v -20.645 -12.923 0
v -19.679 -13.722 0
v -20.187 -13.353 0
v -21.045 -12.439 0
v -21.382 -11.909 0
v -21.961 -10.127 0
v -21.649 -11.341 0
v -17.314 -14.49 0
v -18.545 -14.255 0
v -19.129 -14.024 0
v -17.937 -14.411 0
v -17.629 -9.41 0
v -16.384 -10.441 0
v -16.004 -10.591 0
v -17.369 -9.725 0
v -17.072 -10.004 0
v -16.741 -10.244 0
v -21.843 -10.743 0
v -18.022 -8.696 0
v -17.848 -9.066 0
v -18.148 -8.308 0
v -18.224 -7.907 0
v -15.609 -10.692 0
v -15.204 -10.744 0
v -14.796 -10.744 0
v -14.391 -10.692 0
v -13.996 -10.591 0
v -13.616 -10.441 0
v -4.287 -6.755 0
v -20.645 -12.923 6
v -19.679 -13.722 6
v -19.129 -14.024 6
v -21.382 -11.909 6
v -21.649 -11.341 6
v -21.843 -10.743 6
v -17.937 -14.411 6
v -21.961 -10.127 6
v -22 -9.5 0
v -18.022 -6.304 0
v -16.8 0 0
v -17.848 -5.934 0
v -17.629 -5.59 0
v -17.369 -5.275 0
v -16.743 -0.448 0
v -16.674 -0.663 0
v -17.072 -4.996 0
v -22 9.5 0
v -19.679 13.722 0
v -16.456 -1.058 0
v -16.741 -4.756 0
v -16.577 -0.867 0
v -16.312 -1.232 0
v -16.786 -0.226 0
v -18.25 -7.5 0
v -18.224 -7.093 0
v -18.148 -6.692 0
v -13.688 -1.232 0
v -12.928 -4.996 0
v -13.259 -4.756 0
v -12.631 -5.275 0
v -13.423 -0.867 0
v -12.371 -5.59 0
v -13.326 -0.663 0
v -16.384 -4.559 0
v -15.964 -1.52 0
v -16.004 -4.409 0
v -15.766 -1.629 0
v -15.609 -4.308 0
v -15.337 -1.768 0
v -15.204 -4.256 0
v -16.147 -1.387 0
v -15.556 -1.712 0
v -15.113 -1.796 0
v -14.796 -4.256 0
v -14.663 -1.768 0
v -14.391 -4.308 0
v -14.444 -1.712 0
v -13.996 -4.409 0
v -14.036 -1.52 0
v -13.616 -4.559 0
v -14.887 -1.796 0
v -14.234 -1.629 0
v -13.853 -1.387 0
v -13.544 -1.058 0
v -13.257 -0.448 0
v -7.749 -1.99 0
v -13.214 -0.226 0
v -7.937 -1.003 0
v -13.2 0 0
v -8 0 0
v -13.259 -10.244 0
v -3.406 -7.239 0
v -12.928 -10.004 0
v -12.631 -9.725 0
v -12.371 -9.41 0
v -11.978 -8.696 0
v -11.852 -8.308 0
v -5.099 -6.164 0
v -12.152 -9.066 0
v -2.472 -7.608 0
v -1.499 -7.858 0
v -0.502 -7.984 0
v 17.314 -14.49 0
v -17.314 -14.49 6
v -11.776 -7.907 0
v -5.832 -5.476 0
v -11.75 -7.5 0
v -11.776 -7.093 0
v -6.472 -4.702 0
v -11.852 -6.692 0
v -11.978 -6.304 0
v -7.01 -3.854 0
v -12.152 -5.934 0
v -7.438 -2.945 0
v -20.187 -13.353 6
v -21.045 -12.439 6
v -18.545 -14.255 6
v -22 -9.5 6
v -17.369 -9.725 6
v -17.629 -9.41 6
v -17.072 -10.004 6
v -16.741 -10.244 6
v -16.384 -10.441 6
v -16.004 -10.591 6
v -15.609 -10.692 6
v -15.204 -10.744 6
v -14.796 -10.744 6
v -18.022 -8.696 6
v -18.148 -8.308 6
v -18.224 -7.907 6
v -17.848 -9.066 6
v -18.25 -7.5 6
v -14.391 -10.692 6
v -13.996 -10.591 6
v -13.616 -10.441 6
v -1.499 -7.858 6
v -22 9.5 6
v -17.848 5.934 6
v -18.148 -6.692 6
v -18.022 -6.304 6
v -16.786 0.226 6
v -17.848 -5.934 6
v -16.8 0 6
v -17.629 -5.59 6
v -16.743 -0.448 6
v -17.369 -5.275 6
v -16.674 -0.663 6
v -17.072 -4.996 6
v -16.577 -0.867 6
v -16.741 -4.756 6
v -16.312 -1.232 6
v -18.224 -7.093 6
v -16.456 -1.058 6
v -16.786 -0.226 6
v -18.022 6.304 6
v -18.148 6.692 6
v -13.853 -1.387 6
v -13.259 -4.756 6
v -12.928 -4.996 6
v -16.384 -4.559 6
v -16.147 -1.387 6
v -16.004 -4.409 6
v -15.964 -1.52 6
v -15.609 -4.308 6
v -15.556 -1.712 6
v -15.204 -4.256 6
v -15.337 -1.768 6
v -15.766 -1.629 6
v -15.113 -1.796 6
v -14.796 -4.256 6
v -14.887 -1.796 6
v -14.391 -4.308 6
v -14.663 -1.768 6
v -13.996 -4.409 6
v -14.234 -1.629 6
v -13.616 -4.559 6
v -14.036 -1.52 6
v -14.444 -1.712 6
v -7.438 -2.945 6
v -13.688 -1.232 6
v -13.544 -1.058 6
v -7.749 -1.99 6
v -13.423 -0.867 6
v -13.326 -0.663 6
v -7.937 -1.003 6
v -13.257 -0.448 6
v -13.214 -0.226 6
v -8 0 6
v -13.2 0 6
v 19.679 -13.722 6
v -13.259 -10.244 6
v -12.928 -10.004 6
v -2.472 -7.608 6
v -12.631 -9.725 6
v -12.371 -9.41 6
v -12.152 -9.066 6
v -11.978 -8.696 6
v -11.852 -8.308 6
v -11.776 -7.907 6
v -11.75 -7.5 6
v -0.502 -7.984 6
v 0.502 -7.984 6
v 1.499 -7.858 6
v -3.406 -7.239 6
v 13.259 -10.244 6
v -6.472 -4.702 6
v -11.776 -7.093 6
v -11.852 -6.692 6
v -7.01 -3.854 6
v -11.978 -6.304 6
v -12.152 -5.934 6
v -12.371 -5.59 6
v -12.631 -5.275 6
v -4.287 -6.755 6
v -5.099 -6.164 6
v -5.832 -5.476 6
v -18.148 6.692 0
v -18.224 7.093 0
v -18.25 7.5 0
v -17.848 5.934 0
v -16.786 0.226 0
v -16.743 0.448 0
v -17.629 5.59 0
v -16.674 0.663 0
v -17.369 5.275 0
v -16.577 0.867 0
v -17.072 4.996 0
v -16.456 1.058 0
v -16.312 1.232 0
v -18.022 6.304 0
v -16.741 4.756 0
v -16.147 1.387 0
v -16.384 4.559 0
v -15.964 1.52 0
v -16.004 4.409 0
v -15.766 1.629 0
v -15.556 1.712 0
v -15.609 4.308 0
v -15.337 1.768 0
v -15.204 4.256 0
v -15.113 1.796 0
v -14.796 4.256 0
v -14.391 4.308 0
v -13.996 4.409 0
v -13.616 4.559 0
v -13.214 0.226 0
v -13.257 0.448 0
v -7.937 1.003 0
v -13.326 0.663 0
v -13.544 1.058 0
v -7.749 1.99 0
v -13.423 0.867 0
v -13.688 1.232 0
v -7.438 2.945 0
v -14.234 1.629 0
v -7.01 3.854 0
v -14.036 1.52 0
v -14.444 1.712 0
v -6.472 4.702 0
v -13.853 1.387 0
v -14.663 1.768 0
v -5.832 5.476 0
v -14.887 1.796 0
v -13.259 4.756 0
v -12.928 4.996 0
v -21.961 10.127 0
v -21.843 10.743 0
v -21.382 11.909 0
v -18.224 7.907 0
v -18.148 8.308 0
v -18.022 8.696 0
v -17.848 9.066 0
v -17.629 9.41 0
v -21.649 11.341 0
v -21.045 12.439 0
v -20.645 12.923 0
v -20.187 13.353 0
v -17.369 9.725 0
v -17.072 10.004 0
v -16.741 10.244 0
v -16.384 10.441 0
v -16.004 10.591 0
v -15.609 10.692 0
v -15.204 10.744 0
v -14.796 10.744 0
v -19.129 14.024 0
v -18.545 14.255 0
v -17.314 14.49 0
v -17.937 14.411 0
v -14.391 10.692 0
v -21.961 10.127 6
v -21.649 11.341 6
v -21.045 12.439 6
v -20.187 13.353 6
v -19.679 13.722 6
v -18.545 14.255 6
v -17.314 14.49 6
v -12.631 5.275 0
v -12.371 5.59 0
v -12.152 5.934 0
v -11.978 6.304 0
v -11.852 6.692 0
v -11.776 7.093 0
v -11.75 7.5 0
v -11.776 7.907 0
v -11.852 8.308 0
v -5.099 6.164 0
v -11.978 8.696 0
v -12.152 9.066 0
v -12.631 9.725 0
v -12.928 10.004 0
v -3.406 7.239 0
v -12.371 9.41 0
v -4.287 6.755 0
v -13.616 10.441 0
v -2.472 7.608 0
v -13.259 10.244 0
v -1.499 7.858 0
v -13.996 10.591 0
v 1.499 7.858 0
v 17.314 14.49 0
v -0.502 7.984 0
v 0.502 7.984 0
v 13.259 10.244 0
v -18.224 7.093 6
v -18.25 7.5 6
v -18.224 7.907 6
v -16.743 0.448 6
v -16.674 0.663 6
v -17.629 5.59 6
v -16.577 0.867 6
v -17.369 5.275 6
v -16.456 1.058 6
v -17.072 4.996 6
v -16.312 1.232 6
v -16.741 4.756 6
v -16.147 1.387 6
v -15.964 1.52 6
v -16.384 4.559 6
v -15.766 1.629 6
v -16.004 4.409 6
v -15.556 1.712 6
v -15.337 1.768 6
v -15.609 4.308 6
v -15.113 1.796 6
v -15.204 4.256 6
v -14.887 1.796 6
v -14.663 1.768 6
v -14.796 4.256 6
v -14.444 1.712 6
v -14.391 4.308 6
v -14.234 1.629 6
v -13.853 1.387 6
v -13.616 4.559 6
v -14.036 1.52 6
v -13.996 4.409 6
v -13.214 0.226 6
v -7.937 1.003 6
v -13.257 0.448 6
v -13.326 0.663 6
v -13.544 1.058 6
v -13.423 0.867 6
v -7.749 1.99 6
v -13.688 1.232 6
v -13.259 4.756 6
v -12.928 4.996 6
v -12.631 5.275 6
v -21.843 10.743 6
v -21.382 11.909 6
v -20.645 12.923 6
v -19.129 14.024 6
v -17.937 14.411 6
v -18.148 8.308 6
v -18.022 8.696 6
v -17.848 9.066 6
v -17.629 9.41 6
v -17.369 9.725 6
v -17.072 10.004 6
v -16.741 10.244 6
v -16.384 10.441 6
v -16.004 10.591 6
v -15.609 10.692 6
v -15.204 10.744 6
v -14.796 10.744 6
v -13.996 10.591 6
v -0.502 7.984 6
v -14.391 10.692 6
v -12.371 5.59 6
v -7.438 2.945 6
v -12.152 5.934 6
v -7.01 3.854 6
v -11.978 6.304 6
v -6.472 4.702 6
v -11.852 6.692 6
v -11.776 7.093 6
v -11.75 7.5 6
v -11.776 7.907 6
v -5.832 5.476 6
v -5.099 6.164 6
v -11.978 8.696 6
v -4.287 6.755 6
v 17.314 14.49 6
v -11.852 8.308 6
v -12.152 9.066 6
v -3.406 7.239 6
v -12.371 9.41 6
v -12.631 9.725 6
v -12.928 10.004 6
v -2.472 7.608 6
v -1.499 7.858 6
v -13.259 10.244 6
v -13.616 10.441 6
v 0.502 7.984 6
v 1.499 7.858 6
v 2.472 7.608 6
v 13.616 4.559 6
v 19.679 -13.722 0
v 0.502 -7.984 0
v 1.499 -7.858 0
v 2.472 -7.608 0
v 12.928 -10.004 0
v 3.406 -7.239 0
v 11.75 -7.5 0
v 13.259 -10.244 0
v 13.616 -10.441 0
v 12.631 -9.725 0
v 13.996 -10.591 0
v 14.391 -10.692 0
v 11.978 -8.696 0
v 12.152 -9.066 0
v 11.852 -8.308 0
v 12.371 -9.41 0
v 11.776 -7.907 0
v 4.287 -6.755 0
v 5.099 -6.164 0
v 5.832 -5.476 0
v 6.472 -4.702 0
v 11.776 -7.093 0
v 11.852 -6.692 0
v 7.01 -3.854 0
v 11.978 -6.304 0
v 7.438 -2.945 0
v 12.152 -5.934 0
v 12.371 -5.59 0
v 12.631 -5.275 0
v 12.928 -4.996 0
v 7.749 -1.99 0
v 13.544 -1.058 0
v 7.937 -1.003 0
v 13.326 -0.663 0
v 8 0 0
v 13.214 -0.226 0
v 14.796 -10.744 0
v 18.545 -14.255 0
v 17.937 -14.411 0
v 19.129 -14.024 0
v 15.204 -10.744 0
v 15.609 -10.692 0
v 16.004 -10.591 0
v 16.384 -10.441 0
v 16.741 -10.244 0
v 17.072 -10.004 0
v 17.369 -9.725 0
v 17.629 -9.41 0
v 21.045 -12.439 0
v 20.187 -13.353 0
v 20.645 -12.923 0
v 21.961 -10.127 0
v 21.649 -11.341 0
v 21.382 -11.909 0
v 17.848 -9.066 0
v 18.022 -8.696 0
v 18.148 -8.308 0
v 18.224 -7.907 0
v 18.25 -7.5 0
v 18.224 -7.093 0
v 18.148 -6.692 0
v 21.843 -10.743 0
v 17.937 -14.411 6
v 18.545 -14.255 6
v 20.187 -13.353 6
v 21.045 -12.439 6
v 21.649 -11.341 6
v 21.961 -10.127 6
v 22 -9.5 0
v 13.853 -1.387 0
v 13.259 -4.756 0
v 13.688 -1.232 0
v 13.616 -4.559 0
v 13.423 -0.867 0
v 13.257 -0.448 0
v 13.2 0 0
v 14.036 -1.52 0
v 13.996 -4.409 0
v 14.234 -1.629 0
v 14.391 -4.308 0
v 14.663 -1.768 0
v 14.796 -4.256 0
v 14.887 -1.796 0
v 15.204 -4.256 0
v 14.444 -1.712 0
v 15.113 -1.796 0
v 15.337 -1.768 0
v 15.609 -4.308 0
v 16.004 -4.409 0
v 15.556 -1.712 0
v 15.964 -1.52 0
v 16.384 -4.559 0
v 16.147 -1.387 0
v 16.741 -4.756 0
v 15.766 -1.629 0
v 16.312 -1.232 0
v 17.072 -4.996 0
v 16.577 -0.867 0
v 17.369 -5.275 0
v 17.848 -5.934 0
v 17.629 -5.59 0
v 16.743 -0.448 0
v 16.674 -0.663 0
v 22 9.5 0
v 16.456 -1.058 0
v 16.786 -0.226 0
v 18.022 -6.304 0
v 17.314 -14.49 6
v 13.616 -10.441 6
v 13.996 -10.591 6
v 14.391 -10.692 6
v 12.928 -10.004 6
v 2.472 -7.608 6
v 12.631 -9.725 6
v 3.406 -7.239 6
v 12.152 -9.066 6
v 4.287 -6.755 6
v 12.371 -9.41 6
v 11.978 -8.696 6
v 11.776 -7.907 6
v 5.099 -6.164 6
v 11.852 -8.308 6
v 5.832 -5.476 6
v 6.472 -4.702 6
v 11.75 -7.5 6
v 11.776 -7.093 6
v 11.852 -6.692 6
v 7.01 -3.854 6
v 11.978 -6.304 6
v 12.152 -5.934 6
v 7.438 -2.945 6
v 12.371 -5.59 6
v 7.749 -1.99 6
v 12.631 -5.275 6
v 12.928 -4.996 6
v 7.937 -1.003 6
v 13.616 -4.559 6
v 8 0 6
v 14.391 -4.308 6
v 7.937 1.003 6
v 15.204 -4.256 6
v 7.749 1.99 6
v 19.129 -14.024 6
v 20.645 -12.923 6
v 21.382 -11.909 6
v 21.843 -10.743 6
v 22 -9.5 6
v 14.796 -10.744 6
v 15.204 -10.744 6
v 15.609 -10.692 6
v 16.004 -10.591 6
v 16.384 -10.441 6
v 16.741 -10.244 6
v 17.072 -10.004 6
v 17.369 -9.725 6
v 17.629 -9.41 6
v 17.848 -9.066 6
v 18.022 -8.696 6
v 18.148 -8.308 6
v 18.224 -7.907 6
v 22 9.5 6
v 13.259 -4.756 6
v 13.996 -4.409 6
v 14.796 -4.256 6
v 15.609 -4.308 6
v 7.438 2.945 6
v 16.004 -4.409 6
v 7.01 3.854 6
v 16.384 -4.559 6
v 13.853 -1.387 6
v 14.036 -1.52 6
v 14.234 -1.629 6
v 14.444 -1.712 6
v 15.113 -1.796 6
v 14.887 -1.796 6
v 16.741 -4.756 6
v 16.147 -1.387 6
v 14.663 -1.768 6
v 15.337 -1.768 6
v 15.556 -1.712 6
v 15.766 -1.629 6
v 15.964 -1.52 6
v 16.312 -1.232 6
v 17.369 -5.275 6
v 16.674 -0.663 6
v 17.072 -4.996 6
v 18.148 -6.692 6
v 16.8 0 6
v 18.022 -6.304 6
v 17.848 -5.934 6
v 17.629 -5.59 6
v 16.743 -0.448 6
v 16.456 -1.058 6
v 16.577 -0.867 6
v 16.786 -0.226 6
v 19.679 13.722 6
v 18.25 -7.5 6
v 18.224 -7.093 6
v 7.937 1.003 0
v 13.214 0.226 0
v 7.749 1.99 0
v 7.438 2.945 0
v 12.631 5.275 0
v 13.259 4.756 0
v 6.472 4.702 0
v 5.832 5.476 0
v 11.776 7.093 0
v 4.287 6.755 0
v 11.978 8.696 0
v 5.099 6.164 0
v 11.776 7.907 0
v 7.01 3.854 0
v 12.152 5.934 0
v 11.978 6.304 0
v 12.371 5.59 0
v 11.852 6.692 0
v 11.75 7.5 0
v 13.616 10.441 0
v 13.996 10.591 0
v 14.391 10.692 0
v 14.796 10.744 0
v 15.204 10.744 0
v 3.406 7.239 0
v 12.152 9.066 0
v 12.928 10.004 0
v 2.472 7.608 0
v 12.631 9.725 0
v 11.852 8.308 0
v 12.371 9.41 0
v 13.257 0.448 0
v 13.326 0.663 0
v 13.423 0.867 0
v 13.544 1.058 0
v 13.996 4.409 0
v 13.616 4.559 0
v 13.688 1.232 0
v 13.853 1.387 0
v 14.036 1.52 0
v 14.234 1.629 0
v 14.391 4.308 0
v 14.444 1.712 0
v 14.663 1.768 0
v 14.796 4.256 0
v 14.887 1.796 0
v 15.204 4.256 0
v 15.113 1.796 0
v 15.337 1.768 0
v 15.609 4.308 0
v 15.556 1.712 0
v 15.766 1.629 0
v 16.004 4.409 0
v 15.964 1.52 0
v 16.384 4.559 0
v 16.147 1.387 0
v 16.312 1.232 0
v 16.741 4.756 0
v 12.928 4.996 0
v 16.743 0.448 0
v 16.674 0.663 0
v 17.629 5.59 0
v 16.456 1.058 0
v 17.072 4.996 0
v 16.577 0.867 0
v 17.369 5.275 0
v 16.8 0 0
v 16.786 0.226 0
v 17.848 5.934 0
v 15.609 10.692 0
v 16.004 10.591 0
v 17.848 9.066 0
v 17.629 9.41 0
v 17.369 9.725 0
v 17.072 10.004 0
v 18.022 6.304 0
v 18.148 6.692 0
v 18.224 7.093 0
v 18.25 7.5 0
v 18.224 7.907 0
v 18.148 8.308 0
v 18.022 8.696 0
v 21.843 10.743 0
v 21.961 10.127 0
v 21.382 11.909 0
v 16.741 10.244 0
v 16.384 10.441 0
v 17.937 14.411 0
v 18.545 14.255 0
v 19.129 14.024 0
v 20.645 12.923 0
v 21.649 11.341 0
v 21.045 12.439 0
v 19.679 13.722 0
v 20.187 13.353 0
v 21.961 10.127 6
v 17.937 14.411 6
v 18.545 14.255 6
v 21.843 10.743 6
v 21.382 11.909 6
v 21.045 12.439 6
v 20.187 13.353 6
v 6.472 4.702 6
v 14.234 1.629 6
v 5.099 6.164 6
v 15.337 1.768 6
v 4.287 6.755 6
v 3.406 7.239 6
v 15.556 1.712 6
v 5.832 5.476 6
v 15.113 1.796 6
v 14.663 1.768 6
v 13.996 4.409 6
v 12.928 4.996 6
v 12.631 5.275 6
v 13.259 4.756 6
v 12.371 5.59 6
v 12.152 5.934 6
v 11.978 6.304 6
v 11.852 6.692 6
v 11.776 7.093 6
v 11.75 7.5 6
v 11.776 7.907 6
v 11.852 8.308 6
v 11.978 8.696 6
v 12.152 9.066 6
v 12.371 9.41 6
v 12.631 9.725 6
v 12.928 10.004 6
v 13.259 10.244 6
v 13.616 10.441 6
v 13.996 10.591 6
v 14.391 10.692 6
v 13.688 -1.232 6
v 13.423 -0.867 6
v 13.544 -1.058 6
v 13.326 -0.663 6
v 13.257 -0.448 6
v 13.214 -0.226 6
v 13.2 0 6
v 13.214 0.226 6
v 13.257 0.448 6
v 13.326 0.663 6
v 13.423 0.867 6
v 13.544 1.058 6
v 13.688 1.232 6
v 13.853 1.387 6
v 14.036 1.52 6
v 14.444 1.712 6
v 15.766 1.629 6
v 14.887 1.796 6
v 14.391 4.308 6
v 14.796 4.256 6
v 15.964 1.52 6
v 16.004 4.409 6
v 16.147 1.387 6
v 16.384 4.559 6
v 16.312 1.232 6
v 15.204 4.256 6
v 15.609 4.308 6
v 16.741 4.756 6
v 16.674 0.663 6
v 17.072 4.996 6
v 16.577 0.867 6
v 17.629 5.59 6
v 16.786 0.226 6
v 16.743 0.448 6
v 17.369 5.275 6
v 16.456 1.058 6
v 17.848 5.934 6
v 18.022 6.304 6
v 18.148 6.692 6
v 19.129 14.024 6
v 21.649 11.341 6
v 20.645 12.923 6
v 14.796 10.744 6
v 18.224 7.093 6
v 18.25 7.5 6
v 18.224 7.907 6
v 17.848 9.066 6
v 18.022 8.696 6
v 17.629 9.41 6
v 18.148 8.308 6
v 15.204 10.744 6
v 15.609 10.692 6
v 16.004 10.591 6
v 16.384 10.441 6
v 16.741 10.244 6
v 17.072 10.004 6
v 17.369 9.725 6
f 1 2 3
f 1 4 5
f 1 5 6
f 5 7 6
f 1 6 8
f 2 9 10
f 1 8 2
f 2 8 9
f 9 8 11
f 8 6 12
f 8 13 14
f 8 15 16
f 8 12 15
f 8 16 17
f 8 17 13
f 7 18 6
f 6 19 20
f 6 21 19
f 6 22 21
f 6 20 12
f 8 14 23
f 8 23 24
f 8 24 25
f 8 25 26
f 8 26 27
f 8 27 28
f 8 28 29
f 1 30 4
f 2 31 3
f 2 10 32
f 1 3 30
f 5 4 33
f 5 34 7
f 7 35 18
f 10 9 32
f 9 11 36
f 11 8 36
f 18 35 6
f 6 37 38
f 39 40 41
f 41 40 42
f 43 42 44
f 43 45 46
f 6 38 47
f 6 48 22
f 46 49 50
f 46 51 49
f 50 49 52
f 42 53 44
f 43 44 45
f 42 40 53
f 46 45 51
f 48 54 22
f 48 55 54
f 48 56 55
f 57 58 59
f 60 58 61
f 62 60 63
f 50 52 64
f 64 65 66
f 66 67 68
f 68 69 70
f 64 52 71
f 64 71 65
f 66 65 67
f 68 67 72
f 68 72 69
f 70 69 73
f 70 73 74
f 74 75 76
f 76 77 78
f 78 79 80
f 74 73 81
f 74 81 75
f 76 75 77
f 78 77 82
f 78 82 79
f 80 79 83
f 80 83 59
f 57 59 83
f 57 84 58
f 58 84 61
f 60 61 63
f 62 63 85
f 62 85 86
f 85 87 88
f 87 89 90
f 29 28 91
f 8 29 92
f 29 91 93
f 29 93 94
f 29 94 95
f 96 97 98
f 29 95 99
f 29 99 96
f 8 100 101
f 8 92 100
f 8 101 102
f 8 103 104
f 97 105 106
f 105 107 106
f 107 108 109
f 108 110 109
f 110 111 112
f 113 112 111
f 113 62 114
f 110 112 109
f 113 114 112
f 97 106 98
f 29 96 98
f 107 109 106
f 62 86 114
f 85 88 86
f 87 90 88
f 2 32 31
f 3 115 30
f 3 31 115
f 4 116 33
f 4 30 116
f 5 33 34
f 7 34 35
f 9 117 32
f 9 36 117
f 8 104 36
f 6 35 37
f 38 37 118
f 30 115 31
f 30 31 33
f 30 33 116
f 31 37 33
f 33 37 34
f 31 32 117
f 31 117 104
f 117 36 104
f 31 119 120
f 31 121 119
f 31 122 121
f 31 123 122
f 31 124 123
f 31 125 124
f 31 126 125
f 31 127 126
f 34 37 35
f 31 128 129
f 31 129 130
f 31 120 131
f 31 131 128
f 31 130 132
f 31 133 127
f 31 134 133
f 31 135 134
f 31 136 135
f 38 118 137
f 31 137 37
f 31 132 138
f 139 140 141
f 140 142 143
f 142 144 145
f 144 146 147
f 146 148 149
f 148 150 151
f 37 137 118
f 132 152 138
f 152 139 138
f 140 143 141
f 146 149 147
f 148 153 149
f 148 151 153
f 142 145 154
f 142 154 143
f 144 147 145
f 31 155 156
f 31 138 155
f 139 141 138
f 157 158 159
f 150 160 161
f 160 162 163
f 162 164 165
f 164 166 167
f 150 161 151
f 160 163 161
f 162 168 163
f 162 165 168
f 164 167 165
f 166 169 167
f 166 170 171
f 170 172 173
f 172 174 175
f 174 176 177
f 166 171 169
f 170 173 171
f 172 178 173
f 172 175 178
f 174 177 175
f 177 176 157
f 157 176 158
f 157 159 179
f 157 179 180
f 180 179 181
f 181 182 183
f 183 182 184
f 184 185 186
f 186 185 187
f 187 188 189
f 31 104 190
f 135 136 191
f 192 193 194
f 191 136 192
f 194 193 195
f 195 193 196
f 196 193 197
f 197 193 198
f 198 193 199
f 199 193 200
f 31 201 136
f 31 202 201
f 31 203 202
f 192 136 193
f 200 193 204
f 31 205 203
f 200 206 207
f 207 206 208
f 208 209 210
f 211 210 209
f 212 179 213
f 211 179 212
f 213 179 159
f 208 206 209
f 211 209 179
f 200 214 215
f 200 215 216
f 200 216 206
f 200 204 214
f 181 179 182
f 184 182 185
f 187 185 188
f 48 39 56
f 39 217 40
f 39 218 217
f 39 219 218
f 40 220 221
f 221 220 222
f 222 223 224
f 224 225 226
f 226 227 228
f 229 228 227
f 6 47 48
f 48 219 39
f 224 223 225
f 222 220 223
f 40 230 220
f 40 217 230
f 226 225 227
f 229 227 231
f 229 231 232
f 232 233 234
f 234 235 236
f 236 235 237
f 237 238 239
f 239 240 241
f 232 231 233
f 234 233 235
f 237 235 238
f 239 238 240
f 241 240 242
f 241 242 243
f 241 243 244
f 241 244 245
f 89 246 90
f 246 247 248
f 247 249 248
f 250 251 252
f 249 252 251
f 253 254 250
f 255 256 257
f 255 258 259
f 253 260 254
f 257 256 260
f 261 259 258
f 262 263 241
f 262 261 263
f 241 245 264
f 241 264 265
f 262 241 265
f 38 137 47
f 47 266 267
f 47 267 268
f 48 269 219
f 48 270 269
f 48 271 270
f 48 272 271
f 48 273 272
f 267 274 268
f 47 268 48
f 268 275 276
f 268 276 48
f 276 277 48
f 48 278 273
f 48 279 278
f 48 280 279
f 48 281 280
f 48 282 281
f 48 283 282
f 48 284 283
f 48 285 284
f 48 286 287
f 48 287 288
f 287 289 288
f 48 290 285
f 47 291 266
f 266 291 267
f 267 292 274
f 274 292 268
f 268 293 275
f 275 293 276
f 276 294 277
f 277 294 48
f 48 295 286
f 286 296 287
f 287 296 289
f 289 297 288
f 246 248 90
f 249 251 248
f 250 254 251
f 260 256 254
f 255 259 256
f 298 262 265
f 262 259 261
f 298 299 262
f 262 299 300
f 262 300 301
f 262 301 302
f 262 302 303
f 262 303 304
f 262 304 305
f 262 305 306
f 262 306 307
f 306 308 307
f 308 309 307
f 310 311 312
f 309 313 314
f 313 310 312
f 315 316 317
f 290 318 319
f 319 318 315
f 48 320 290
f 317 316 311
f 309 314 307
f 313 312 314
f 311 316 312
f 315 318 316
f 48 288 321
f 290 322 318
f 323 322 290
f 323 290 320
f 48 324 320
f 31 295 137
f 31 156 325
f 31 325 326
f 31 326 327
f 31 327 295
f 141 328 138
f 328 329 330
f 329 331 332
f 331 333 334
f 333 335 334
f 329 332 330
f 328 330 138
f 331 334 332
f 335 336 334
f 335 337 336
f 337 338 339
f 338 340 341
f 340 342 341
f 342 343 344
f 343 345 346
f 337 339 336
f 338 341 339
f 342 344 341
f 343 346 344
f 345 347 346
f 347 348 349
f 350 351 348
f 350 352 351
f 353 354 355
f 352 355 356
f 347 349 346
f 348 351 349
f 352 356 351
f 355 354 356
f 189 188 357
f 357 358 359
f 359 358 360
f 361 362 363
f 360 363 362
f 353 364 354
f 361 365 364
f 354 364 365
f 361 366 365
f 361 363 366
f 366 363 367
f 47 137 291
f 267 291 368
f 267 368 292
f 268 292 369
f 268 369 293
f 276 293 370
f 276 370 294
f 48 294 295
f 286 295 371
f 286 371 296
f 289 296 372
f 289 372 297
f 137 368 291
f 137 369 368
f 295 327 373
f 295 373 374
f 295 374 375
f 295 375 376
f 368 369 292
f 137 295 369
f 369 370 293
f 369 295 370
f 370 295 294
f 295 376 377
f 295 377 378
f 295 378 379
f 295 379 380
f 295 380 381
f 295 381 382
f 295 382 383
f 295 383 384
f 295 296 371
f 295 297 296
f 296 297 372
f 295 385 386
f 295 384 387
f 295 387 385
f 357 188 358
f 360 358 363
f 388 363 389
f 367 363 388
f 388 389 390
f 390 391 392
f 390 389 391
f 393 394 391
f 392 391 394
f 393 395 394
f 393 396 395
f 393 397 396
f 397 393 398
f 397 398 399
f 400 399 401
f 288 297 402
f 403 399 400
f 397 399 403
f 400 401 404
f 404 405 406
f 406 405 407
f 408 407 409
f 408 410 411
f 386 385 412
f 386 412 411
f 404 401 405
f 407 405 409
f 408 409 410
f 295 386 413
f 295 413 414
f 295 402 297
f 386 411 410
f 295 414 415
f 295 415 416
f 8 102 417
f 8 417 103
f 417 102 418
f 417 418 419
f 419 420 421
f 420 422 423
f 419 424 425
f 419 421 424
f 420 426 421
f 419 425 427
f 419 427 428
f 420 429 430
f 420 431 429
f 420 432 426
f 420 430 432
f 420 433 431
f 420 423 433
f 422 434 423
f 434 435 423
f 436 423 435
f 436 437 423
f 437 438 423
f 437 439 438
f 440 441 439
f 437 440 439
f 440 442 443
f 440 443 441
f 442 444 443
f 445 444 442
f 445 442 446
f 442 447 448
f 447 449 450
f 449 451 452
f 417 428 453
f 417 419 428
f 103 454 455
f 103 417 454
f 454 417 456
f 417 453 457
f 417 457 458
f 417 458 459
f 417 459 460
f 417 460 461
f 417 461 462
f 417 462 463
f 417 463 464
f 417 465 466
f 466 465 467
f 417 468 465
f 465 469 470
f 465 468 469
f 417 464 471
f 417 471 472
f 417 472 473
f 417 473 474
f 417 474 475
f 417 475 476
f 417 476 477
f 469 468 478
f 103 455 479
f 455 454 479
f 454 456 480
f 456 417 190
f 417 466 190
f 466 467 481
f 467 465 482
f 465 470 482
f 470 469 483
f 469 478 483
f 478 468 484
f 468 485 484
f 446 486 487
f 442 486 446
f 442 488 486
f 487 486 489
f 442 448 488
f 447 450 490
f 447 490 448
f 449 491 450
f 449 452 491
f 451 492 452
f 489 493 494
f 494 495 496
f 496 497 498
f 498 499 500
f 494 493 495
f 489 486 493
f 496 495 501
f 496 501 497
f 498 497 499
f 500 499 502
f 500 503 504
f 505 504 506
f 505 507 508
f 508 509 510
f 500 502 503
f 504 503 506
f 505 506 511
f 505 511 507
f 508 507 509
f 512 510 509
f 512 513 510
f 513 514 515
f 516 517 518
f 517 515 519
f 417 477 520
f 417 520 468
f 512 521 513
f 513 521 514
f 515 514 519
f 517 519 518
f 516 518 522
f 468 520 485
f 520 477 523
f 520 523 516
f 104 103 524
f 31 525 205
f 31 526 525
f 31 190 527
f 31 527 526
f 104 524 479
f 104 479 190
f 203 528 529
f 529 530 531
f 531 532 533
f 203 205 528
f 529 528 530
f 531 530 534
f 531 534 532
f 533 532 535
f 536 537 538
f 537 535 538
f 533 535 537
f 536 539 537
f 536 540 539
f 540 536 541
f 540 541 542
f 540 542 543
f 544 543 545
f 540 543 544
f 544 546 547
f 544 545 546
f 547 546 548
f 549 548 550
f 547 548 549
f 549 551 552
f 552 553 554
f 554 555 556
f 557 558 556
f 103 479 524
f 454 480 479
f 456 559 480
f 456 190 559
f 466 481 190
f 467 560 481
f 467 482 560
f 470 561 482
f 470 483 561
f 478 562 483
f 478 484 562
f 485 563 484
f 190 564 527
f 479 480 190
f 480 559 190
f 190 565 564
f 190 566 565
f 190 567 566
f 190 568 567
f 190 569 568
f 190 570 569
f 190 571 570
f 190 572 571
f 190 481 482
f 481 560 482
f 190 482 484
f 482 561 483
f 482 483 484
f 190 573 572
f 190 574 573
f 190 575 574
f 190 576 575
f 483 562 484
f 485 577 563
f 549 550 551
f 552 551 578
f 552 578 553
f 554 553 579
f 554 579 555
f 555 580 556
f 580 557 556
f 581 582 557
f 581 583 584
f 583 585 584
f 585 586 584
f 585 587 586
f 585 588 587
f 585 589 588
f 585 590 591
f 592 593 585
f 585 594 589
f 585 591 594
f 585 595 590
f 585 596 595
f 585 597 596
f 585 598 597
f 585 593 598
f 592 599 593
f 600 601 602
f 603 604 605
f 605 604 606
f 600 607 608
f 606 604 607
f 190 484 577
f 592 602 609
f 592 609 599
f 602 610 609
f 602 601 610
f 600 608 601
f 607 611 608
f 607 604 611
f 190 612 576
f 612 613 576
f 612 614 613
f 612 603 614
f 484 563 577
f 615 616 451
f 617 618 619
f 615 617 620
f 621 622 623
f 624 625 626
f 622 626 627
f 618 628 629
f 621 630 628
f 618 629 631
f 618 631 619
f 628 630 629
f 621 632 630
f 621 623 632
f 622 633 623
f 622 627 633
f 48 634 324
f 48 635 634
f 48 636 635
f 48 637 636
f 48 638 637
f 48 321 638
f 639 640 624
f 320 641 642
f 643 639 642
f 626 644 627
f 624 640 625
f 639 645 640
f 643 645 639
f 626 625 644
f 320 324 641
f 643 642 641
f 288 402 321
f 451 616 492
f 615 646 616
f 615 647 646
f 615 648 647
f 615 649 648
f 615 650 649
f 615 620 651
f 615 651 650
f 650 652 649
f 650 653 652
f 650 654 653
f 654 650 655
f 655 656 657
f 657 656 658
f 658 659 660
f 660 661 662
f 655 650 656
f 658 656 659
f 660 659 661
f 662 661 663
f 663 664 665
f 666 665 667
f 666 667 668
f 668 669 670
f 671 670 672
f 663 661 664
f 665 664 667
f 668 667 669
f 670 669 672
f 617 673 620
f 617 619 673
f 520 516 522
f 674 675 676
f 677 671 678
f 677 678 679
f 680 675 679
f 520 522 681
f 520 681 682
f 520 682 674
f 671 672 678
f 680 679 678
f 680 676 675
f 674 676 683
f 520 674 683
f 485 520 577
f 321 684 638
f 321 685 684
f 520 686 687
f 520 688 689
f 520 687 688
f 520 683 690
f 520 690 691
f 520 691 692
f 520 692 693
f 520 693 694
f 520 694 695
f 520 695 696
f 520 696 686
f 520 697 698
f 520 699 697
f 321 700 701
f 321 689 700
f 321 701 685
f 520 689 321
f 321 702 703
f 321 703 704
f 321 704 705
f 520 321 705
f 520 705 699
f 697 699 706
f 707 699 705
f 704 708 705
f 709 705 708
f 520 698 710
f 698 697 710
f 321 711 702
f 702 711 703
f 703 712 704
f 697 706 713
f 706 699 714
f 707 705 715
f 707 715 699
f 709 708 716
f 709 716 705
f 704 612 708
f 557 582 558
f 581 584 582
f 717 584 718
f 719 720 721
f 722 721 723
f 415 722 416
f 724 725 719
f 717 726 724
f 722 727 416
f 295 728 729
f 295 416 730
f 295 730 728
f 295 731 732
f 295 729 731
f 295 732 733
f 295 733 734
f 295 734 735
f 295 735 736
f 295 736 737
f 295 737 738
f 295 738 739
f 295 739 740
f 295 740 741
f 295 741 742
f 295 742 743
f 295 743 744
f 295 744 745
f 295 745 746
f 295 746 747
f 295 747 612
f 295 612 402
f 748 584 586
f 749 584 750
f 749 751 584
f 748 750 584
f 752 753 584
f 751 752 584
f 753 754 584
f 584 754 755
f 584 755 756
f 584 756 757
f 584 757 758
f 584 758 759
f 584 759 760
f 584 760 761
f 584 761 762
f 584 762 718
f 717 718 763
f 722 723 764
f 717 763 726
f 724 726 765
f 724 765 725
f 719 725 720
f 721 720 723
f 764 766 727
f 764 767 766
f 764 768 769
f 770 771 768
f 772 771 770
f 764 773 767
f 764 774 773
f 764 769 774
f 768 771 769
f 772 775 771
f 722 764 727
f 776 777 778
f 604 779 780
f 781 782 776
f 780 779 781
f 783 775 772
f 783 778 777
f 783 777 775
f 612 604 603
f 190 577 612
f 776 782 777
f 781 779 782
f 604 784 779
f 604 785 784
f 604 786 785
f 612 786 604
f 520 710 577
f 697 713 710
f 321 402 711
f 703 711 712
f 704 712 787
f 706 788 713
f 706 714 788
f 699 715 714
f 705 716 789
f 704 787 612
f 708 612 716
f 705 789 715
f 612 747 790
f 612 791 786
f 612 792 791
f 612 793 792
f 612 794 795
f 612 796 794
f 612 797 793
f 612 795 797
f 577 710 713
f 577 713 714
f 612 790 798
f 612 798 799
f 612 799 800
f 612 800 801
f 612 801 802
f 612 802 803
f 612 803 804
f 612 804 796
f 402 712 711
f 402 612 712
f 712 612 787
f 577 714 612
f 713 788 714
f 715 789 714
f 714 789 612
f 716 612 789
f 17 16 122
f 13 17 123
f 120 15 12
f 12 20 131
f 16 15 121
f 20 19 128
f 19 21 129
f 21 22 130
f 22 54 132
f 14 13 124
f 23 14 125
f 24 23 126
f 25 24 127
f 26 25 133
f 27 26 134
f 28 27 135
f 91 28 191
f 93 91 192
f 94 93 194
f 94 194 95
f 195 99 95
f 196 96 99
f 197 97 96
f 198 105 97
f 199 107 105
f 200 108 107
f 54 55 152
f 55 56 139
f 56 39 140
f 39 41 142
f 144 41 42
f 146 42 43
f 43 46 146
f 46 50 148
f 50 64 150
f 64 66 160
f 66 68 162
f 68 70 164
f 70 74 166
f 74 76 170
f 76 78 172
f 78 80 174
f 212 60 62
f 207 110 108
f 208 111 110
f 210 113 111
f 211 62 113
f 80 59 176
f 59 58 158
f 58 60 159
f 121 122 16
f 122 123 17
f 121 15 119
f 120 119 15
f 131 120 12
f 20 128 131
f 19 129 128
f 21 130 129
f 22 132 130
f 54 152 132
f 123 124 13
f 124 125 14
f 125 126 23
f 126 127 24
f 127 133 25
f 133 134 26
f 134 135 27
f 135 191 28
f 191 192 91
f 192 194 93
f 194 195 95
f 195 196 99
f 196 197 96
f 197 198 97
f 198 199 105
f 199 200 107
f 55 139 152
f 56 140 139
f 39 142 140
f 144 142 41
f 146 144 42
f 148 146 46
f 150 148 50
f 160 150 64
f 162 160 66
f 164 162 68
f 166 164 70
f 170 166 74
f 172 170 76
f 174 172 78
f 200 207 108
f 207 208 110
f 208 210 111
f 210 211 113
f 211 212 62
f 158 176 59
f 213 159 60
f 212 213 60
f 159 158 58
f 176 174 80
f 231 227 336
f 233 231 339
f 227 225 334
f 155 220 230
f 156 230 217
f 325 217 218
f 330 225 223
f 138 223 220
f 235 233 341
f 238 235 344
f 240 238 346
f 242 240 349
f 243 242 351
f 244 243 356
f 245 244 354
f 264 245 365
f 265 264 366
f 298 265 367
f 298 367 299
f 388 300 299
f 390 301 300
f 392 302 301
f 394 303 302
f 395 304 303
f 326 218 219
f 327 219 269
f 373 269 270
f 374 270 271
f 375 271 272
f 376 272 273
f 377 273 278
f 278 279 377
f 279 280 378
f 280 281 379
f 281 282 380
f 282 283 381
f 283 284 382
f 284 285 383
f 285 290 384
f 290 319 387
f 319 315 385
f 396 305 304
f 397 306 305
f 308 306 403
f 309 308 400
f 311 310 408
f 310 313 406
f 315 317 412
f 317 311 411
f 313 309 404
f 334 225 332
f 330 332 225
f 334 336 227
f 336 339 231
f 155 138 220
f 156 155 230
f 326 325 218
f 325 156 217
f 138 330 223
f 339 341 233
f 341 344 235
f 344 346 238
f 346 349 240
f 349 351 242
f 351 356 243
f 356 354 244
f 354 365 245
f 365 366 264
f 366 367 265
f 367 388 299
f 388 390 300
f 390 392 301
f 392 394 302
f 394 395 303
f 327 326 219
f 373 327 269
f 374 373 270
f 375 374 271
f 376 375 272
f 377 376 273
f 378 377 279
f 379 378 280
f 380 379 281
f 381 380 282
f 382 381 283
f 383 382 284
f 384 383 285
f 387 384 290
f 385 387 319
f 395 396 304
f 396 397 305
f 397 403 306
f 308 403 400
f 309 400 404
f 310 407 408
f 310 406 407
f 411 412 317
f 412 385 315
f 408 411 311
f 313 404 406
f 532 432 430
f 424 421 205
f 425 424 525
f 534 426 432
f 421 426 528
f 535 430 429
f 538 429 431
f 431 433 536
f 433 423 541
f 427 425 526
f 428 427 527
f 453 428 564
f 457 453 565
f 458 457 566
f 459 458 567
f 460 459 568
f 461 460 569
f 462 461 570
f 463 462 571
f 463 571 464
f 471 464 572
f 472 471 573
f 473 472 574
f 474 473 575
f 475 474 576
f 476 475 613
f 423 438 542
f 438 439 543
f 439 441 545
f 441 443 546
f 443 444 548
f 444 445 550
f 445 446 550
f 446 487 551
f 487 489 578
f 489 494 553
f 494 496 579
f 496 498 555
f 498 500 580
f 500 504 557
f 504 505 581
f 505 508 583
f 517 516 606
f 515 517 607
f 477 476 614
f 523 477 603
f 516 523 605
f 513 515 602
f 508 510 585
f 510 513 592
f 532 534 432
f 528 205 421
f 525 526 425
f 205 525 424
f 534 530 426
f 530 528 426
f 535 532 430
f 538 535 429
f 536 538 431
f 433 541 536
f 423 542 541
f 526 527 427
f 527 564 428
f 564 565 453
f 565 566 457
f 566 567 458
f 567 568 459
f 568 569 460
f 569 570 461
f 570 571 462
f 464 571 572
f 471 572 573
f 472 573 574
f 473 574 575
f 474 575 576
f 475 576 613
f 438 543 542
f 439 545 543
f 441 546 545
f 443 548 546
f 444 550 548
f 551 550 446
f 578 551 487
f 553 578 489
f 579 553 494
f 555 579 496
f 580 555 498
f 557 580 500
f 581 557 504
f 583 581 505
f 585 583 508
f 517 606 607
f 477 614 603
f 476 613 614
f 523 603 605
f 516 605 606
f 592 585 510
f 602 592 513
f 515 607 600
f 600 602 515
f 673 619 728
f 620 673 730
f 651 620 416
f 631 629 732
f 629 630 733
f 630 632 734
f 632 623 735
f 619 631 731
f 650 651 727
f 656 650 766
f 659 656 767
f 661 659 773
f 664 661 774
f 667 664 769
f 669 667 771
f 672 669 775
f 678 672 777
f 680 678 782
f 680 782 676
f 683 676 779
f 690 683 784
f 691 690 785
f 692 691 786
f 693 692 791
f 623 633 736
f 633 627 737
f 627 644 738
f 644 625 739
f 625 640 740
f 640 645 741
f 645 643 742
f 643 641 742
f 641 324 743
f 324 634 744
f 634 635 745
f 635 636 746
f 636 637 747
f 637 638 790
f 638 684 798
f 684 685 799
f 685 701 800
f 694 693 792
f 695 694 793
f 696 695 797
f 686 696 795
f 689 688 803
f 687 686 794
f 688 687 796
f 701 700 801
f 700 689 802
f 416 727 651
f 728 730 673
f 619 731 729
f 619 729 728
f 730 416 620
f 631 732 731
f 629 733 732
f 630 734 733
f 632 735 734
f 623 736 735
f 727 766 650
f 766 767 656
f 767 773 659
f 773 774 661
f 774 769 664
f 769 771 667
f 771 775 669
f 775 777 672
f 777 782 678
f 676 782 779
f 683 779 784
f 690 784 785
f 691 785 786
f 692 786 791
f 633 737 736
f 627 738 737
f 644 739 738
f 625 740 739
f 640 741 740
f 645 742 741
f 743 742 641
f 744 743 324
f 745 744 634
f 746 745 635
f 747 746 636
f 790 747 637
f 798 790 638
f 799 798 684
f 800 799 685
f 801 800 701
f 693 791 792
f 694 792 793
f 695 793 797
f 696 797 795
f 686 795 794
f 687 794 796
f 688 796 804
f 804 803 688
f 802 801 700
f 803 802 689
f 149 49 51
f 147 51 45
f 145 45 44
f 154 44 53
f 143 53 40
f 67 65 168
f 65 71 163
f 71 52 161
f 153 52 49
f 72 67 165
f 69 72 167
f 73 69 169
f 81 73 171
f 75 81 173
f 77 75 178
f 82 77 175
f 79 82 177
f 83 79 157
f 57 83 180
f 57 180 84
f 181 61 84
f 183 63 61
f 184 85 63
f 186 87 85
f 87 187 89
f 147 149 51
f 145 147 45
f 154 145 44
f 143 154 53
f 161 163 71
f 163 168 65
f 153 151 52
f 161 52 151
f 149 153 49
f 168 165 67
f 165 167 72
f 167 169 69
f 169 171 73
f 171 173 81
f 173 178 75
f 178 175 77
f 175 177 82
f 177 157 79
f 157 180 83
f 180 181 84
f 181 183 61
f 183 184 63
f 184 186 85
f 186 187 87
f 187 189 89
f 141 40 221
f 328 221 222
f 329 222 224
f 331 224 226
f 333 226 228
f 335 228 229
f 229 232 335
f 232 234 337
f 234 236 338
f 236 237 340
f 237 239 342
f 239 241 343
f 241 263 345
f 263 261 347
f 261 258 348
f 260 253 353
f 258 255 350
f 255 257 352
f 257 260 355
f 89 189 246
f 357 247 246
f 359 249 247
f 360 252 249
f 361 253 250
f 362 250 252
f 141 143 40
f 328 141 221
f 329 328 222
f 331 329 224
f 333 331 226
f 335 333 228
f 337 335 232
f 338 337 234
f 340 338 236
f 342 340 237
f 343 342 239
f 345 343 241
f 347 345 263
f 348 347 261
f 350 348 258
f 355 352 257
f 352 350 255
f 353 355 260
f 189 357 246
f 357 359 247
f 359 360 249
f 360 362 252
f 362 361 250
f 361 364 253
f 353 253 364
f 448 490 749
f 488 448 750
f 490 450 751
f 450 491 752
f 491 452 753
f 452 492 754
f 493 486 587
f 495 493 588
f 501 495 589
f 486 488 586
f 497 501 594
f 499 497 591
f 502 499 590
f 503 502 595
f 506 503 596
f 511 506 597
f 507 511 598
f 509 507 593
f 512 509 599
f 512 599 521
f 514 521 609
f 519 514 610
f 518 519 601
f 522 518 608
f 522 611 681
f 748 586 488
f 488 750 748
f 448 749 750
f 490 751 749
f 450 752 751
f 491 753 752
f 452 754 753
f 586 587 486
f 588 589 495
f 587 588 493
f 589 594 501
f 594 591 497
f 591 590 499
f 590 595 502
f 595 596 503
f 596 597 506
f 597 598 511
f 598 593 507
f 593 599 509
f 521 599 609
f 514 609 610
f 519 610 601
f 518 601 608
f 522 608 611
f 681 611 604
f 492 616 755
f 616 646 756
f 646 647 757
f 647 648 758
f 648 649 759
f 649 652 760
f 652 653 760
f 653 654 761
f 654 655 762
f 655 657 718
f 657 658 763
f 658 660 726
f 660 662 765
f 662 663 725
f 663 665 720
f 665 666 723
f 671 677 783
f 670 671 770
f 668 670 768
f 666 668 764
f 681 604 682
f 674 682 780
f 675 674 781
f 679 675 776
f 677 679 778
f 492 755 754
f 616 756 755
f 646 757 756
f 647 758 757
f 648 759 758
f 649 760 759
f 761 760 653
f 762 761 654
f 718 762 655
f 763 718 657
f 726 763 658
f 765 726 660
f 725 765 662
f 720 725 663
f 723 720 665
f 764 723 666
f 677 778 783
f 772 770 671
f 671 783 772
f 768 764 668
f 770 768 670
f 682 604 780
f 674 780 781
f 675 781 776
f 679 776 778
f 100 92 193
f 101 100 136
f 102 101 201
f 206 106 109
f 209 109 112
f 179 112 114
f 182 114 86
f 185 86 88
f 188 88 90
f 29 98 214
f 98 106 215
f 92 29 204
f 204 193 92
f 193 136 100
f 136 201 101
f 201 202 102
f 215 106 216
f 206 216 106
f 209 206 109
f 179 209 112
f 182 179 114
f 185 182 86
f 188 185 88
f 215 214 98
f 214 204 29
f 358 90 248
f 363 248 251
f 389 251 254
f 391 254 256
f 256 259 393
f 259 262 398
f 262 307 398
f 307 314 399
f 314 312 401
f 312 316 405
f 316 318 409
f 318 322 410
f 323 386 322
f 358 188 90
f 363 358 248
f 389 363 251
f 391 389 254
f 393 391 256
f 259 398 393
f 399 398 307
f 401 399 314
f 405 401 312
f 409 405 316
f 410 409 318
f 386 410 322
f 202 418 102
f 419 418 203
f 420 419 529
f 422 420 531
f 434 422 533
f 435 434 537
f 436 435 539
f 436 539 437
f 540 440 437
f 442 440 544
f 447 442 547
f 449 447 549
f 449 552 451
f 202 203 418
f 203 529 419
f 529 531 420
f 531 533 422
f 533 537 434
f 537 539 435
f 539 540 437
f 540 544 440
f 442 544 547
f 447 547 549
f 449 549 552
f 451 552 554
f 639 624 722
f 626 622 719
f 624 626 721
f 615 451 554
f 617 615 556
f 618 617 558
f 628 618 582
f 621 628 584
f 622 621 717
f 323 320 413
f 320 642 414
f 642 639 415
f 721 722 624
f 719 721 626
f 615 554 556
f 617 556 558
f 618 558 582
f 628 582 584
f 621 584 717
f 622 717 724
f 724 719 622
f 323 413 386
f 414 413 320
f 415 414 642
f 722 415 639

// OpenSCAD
$fn = 50;

difference() {
	union() {
		hull() {
			translate(v = [-17.0, 9.5, 0]) {
				cylinder(h = 6, r = 5);
			}
			translate(v = [17.0, 9.5, 0]) {
				cylinder(h = 6, r = 5);
			}
			translate(v = [-17.0, -9.5, 0]) {
				cylinder(h = 6, r = 5);
			}
			translate(v = [17.0, -9.5, 0]) {
				cylinder(h = 6, r = 5);
			}
		}
	}
	union() {
		translate(v = [-15.0, -7.5, 0]) {
			cylinder(h = 6, r = 3.25);
		}
		translate(v = [-15.0, 7.5, 0]) {
			cylinder(h = 6, r = 3.25);
		}
		translate(v = [15.0, -7.5, 0]) {
			cylinder(h = 6, r = 3.25);
		}
		translate(v = [15.0, 7.5, 0]) {
			cylinder(h = 6, r = 3.25);
		}
		translate(v = [-15.0, 0.0, 0]) {
			cylinder(h = 6, r = 1.8);
		}
		translate(v = [15.0, 0.0, 0]) {
			cylinder(h = 6, r = 1.8);
		}
		cylinder(h = 6, r = 8.0);
	}
}
